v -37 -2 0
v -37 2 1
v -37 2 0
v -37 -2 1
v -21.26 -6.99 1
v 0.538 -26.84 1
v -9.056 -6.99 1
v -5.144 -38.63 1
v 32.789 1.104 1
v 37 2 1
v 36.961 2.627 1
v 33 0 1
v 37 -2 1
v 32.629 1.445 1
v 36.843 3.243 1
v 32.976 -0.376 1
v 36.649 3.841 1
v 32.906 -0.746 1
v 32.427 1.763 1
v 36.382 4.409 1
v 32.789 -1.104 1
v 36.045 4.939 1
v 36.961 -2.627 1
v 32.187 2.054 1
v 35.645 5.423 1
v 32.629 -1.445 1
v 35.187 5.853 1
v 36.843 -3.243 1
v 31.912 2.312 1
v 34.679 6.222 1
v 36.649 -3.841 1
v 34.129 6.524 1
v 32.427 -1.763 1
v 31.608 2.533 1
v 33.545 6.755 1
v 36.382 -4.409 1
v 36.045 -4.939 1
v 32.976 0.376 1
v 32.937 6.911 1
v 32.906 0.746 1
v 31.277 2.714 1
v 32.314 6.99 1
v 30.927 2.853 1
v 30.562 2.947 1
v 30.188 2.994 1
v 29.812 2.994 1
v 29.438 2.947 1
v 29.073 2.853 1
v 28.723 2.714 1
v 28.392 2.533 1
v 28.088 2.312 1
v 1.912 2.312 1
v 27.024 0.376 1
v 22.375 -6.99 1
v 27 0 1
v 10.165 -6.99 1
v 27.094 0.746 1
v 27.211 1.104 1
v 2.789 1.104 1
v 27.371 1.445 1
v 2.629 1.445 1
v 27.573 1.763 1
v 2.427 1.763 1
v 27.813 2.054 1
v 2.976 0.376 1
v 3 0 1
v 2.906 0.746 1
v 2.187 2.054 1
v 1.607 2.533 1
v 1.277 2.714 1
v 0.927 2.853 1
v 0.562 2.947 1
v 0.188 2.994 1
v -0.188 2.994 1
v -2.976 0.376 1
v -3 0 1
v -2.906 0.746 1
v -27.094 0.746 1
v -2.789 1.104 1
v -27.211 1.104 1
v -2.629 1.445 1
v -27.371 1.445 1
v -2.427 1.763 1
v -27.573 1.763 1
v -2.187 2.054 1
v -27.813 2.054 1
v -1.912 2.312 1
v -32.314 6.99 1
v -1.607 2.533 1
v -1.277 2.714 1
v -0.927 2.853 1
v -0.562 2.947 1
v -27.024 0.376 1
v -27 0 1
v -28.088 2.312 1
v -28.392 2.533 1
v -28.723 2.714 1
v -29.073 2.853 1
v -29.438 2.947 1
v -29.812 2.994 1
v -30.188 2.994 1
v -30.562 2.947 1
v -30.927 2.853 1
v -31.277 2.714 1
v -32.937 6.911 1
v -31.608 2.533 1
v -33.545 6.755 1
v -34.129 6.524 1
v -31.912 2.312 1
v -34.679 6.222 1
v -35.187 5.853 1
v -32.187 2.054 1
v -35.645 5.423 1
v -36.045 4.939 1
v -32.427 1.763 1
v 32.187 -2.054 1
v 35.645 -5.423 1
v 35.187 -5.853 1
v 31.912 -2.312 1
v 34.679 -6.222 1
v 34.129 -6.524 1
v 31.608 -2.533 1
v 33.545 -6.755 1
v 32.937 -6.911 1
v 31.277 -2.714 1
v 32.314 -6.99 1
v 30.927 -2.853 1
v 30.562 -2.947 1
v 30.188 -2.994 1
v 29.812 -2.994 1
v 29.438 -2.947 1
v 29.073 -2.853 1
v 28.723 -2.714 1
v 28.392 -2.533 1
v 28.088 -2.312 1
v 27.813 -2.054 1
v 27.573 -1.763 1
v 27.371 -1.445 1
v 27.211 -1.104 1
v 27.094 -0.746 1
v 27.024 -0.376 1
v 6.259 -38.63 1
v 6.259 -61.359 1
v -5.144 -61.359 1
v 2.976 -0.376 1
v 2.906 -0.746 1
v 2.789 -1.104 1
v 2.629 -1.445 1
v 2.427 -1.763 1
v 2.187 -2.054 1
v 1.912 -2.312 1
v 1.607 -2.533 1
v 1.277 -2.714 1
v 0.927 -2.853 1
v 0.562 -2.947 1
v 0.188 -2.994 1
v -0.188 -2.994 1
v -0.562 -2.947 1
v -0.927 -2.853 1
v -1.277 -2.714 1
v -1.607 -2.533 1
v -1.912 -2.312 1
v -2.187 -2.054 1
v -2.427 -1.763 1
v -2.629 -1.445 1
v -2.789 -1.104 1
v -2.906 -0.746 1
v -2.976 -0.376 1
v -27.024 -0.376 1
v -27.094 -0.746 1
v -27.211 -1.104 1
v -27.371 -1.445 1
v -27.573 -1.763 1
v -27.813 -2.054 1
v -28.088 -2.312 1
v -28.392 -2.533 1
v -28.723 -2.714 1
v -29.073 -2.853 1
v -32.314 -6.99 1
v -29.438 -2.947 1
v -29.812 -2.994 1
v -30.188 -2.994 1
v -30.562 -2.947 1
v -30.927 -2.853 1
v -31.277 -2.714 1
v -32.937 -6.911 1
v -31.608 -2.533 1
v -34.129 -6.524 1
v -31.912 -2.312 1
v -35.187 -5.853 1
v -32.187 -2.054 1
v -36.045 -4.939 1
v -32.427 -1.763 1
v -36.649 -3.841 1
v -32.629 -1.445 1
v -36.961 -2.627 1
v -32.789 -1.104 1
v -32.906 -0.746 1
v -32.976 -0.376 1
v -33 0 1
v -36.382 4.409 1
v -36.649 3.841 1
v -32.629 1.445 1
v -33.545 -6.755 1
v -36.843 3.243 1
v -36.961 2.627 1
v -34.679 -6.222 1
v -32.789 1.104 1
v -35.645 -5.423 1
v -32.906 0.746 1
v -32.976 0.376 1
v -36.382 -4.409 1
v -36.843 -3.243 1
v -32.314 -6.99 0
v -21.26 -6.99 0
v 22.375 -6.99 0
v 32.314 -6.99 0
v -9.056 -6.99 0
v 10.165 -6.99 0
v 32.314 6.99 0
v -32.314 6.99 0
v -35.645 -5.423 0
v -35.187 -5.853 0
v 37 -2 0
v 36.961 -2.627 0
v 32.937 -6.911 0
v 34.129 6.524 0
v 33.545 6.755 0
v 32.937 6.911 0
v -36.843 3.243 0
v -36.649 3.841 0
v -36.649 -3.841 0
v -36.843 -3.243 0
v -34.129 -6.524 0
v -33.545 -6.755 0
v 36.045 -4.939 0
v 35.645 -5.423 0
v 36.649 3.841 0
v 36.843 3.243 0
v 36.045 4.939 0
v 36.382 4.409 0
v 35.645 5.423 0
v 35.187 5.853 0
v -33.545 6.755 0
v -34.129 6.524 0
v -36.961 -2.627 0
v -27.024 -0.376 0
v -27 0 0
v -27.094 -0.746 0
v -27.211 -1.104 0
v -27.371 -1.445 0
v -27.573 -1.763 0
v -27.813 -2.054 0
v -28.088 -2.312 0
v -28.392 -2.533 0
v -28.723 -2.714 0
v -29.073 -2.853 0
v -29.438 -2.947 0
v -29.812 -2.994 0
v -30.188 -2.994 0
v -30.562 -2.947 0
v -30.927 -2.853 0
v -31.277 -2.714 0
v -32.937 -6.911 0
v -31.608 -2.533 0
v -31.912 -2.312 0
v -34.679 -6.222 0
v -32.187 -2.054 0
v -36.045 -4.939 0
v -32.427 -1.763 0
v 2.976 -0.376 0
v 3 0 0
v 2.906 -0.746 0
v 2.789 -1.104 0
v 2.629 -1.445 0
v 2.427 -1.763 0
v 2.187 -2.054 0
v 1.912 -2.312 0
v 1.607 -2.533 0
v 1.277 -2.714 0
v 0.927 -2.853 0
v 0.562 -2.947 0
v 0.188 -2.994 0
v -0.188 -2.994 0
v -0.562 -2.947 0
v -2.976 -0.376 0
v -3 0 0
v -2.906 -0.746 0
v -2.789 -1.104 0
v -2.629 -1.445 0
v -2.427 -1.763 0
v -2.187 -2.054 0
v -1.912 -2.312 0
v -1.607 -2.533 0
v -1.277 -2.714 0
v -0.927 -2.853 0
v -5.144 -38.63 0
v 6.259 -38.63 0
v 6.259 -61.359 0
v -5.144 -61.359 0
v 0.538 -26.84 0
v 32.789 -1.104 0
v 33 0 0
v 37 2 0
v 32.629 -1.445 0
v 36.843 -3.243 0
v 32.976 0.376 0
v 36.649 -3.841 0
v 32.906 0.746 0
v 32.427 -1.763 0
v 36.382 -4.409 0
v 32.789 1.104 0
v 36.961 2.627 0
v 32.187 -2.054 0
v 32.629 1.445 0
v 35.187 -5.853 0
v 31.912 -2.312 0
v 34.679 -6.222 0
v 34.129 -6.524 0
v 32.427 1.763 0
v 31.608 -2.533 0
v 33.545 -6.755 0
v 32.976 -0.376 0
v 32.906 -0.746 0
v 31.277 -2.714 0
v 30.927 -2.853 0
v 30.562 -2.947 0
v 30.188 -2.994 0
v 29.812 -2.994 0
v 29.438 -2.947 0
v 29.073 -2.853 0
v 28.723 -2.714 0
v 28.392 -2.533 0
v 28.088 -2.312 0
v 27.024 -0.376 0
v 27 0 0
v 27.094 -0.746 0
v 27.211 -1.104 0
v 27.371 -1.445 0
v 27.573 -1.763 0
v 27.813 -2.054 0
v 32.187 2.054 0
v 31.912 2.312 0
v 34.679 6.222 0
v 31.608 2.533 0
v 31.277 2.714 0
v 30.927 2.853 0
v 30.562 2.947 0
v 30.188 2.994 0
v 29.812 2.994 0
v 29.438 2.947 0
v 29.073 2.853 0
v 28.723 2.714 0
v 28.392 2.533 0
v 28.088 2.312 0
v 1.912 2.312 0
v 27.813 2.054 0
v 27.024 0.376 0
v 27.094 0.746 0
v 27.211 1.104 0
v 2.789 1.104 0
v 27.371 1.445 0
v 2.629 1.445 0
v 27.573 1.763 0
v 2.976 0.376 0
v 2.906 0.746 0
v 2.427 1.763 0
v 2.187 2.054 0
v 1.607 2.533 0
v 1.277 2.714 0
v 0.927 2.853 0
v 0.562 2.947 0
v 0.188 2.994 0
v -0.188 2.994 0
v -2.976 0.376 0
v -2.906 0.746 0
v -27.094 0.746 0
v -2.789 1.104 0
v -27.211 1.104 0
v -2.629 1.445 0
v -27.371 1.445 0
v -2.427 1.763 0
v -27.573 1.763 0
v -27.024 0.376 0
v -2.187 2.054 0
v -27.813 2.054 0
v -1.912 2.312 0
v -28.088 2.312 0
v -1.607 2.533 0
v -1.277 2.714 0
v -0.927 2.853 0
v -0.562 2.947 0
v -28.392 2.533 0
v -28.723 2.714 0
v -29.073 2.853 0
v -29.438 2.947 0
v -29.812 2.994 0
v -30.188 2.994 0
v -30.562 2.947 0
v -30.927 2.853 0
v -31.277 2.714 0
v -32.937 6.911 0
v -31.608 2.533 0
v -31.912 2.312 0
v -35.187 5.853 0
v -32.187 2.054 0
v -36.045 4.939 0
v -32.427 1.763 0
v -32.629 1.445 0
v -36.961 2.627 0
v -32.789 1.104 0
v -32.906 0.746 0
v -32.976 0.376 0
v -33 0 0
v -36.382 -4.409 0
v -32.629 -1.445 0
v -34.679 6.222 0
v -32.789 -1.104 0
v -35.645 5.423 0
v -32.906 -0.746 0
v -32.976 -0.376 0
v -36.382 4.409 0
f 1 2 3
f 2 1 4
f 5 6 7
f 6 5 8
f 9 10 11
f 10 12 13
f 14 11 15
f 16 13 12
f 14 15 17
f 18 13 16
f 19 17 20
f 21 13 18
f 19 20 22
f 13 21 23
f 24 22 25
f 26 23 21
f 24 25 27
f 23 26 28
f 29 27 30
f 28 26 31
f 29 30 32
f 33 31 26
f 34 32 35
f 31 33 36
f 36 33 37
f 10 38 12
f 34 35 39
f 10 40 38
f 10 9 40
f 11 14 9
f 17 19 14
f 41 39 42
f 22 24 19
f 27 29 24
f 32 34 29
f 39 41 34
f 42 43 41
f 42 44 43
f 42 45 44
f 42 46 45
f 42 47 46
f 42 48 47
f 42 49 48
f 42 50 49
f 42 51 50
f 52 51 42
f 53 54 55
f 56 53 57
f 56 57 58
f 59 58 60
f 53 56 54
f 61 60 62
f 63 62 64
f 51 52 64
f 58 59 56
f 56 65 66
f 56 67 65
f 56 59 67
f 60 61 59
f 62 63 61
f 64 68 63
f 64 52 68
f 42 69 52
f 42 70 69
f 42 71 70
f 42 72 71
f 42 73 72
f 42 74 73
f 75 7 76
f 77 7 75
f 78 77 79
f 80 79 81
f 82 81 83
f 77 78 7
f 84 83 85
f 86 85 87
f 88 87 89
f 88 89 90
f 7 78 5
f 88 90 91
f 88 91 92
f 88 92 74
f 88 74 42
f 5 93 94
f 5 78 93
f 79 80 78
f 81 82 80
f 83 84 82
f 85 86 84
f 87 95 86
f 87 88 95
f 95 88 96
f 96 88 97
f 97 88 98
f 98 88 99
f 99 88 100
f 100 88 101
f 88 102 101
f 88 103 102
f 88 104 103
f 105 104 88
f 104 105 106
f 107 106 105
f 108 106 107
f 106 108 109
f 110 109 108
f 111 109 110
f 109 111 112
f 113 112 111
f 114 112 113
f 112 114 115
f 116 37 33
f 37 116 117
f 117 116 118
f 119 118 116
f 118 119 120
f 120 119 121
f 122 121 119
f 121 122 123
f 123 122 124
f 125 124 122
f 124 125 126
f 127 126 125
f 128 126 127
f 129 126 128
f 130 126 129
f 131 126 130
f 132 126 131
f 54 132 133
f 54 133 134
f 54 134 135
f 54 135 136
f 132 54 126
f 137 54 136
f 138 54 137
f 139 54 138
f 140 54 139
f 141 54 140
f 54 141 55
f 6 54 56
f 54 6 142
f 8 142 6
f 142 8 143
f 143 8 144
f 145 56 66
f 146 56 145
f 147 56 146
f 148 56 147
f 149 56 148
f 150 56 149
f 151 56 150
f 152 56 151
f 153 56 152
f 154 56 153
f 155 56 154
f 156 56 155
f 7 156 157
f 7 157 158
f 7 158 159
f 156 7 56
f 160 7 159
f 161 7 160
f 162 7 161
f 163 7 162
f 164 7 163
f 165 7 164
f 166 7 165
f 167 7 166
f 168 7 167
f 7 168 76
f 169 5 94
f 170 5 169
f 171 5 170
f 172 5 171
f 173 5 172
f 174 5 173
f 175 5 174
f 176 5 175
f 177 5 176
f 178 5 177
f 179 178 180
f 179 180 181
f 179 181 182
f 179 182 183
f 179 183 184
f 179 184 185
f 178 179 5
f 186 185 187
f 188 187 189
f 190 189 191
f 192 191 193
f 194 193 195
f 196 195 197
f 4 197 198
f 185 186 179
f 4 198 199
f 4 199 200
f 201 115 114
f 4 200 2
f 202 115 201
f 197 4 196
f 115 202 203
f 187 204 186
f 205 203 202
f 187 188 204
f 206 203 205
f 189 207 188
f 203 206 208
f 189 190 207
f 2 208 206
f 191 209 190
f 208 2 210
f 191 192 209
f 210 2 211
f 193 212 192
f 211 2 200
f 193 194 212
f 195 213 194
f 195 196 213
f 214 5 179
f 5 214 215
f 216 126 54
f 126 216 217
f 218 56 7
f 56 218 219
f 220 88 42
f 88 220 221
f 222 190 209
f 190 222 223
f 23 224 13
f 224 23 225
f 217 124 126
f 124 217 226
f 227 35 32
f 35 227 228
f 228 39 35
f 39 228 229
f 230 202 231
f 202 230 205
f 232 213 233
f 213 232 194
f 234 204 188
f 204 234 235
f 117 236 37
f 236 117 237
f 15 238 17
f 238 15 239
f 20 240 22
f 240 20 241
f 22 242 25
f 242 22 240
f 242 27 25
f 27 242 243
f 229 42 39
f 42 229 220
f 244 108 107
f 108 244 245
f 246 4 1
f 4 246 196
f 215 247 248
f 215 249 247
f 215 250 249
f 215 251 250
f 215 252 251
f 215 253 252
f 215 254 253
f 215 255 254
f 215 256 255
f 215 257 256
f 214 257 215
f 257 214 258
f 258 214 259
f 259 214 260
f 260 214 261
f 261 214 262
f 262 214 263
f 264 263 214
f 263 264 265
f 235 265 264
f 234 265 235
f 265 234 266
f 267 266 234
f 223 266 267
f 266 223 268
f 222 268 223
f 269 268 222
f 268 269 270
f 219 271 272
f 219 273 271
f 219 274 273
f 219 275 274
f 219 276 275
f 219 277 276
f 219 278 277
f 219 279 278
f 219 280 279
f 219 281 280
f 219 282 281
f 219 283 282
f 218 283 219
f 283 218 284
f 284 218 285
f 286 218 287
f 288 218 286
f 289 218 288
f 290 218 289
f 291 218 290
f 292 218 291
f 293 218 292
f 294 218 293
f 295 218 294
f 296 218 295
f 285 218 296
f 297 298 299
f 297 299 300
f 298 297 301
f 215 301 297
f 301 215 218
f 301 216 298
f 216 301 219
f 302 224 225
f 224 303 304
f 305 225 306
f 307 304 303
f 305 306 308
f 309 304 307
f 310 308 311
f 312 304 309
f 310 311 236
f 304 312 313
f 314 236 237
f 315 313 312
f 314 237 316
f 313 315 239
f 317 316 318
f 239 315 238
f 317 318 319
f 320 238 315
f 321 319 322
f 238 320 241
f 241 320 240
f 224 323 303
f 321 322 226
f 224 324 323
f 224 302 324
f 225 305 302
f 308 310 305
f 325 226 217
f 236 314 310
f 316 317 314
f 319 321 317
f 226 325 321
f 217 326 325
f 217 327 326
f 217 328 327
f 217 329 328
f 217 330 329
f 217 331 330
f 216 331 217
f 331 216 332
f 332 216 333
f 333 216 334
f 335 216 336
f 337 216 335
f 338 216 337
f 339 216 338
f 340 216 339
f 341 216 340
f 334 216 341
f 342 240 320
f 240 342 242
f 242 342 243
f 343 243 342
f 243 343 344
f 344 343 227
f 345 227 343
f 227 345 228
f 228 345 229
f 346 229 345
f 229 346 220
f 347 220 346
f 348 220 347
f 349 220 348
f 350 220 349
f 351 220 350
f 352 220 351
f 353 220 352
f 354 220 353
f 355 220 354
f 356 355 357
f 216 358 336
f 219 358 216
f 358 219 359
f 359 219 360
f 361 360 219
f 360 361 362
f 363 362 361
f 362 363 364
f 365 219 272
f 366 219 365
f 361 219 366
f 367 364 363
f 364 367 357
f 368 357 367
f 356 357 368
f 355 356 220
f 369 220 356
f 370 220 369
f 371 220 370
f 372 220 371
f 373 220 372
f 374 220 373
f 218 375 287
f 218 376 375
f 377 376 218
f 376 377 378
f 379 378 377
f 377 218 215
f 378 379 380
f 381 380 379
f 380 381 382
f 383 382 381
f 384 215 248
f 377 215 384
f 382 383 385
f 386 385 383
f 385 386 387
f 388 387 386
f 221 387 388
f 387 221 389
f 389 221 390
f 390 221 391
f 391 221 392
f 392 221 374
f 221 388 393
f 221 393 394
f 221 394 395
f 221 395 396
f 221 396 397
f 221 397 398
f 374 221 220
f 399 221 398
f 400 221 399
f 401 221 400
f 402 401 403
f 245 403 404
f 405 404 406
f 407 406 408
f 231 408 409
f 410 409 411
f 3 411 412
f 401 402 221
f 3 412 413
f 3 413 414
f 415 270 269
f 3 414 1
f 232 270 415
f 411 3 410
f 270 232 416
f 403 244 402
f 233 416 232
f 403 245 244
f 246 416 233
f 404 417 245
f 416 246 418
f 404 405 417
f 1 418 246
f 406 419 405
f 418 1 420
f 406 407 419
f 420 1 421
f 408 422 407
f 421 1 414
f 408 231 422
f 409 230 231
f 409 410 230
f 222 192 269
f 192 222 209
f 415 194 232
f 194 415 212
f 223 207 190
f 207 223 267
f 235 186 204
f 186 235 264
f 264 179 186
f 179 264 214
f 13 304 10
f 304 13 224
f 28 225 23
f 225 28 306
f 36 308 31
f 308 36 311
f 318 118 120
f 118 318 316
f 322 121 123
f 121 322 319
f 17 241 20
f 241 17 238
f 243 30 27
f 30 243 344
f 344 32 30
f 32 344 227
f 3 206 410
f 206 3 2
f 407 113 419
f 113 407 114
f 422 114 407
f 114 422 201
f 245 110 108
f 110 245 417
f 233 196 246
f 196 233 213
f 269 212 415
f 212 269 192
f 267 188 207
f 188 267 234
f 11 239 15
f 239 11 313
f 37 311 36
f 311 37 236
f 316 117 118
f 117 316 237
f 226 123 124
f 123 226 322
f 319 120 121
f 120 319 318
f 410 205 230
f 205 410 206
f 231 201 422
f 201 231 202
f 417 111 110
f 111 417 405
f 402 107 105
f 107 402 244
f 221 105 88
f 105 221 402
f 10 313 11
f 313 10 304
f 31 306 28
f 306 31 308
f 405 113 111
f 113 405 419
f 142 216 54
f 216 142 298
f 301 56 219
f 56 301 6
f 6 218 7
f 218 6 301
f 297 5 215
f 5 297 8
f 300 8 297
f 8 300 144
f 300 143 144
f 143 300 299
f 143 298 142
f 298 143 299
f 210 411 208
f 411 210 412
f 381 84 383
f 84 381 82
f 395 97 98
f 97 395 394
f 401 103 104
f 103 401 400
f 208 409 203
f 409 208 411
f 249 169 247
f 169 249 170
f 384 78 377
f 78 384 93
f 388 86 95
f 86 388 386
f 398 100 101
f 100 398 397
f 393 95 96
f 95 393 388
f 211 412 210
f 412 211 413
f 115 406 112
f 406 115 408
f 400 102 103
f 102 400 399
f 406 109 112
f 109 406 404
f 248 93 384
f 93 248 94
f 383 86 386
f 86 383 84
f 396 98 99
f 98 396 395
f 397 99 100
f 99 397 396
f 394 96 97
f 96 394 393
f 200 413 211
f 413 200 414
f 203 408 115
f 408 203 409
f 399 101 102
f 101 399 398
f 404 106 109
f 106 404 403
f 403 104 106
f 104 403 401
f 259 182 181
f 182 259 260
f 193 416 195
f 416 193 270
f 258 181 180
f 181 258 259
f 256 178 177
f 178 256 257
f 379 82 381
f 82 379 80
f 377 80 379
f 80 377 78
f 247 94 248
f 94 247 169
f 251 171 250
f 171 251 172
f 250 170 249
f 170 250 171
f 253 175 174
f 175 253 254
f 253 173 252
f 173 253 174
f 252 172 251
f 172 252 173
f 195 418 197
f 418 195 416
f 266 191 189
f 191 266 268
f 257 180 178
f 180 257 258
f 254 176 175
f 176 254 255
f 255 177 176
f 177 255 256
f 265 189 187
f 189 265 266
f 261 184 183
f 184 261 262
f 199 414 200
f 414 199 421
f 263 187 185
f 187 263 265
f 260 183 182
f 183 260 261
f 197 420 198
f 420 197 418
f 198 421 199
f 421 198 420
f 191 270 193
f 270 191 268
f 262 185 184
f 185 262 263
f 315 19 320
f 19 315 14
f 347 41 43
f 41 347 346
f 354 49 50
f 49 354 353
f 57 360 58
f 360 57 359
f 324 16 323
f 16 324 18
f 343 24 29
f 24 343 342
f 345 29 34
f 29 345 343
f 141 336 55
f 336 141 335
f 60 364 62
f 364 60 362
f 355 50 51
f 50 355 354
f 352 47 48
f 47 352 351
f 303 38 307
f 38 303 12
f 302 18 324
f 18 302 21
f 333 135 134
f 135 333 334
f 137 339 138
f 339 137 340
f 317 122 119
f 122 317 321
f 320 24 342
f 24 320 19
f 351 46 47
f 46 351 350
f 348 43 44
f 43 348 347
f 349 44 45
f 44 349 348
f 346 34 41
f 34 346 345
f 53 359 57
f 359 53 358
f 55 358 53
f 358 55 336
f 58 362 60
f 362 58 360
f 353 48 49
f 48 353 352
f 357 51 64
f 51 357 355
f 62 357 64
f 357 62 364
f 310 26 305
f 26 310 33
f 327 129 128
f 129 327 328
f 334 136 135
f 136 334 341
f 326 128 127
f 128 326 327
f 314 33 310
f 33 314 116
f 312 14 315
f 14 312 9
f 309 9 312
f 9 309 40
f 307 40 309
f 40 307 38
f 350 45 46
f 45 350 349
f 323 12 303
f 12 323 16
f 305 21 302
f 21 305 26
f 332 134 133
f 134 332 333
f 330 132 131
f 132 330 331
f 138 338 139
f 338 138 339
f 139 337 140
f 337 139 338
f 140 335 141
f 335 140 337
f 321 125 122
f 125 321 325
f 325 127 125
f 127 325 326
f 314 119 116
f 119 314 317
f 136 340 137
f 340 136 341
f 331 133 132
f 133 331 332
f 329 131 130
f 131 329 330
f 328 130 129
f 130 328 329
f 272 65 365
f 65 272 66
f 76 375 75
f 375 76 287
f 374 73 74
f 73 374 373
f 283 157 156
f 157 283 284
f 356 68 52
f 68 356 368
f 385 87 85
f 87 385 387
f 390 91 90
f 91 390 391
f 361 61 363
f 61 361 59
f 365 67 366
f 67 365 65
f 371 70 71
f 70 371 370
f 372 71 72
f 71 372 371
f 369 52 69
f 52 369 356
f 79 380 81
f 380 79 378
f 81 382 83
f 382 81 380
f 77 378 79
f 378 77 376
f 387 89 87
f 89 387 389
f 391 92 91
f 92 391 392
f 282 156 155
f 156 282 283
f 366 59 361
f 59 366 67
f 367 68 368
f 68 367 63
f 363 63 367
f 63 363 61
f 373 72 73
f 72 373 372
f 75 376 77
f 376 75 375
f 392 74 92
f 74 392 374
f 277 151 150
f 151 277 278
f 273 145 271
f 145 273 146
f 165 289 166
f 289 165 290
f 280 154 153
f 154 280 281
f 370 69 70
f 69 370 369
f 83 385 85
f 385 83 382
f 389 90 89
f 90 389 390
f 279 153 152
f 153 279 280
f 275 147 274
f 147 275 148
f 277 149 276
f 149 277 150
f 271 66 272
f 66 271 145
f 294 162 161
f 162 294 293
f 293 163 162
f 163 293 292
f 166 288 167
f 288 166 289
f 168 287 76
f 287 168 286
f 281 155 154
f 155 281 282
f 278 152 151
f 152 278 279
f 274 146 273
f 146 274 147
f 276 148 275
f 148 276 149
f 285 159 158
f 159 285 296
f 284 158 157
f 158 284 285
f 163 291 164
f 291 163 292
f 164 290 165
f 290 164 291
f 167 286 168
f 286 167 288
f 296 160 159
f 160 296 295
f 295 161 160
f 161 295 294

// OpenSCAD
$fn = 50;


difference() {
	union() {
		translate(v = [0, 0, 0]) {
			rotate(a = [0, 0, 0]) {
				hull() {
					translate(v = [-32.0000000000, 2.0000000000, 0]) {
						rotate(a = [0, 0, 0]) {
							translate(v = [0, 0, 0]) {
								rotate(a = [0, 0, 0]) {
									cylinder(h = 1, r = 5);
								}
							}
						}
					}
					translate(v = [32.0000000000, 2.0000000000, 0]) {
						rotate(a = [0, 0, 0]) {
							translate(v = [0, 0, 0]) {
								rotate(a = [0, 0, 0]) {
									cylinder(h = 1, r = 5);
								}
							}
						}
					}
					translate(v = [-32.0000000000, -2.0000000000, 0]) {
						rotate(a = [0, 0, 0]) {
							translate(v = [0, 0, 0]) {
								rotate(a = [0, 0, 0]) {
									cylinder(h = 1, r = 5);
								}
							}
						}
					}
					translate(v = [32.0000000000, -2.0000000000, 0]) {
						rotate(a = [0, 0, 0]) {
							translate(v = [0, 0, 0]) {
								rotate(a = [0, 0, 0]) {
									cylinder(h = 1, r = 5);
								}
							}
						}
					}
				}
			}
		}
		translate(v = [0, -5, 0]) {
			rotate(a = [0, 0, 0]) {
				linear_extrude(height = 1) {
					text(font = "DejaVu Sans Mono:style=Bold", halign = "center", size = 57.0000000000, text = "Y", valign = "top");
				}
			}
		}
	}
	union() {
		translate(v = [-30.0000000000, 0.0000000000, -125.0000000000]) {
			rotate(a = [0, 0, 0]) {
				cylinder(h = 250, r = 3.0000000000);
			}
		}
		translate(v = [30.0000000000, 0.0000000000, -125.0000000000]) {
			rotate(a = [0, 0, 0]) {
				cylinder(h = 250, r = 3.0000000000);
			}
		}
		translate(v = [30.0000000000, 0.0000000000, -125.0000000000]) {
			rotate(a = [0, 0, 0]) {
				cylinder(h = 250, r = 3.0000000000);
			}
		}
		translate(v = [0, 0, -125.0000000000]) {
			rotate(a = [0, 0, 0]) {
				cylinder(h = 250, r = 3.0000000000);
			}
		}
	}
}
